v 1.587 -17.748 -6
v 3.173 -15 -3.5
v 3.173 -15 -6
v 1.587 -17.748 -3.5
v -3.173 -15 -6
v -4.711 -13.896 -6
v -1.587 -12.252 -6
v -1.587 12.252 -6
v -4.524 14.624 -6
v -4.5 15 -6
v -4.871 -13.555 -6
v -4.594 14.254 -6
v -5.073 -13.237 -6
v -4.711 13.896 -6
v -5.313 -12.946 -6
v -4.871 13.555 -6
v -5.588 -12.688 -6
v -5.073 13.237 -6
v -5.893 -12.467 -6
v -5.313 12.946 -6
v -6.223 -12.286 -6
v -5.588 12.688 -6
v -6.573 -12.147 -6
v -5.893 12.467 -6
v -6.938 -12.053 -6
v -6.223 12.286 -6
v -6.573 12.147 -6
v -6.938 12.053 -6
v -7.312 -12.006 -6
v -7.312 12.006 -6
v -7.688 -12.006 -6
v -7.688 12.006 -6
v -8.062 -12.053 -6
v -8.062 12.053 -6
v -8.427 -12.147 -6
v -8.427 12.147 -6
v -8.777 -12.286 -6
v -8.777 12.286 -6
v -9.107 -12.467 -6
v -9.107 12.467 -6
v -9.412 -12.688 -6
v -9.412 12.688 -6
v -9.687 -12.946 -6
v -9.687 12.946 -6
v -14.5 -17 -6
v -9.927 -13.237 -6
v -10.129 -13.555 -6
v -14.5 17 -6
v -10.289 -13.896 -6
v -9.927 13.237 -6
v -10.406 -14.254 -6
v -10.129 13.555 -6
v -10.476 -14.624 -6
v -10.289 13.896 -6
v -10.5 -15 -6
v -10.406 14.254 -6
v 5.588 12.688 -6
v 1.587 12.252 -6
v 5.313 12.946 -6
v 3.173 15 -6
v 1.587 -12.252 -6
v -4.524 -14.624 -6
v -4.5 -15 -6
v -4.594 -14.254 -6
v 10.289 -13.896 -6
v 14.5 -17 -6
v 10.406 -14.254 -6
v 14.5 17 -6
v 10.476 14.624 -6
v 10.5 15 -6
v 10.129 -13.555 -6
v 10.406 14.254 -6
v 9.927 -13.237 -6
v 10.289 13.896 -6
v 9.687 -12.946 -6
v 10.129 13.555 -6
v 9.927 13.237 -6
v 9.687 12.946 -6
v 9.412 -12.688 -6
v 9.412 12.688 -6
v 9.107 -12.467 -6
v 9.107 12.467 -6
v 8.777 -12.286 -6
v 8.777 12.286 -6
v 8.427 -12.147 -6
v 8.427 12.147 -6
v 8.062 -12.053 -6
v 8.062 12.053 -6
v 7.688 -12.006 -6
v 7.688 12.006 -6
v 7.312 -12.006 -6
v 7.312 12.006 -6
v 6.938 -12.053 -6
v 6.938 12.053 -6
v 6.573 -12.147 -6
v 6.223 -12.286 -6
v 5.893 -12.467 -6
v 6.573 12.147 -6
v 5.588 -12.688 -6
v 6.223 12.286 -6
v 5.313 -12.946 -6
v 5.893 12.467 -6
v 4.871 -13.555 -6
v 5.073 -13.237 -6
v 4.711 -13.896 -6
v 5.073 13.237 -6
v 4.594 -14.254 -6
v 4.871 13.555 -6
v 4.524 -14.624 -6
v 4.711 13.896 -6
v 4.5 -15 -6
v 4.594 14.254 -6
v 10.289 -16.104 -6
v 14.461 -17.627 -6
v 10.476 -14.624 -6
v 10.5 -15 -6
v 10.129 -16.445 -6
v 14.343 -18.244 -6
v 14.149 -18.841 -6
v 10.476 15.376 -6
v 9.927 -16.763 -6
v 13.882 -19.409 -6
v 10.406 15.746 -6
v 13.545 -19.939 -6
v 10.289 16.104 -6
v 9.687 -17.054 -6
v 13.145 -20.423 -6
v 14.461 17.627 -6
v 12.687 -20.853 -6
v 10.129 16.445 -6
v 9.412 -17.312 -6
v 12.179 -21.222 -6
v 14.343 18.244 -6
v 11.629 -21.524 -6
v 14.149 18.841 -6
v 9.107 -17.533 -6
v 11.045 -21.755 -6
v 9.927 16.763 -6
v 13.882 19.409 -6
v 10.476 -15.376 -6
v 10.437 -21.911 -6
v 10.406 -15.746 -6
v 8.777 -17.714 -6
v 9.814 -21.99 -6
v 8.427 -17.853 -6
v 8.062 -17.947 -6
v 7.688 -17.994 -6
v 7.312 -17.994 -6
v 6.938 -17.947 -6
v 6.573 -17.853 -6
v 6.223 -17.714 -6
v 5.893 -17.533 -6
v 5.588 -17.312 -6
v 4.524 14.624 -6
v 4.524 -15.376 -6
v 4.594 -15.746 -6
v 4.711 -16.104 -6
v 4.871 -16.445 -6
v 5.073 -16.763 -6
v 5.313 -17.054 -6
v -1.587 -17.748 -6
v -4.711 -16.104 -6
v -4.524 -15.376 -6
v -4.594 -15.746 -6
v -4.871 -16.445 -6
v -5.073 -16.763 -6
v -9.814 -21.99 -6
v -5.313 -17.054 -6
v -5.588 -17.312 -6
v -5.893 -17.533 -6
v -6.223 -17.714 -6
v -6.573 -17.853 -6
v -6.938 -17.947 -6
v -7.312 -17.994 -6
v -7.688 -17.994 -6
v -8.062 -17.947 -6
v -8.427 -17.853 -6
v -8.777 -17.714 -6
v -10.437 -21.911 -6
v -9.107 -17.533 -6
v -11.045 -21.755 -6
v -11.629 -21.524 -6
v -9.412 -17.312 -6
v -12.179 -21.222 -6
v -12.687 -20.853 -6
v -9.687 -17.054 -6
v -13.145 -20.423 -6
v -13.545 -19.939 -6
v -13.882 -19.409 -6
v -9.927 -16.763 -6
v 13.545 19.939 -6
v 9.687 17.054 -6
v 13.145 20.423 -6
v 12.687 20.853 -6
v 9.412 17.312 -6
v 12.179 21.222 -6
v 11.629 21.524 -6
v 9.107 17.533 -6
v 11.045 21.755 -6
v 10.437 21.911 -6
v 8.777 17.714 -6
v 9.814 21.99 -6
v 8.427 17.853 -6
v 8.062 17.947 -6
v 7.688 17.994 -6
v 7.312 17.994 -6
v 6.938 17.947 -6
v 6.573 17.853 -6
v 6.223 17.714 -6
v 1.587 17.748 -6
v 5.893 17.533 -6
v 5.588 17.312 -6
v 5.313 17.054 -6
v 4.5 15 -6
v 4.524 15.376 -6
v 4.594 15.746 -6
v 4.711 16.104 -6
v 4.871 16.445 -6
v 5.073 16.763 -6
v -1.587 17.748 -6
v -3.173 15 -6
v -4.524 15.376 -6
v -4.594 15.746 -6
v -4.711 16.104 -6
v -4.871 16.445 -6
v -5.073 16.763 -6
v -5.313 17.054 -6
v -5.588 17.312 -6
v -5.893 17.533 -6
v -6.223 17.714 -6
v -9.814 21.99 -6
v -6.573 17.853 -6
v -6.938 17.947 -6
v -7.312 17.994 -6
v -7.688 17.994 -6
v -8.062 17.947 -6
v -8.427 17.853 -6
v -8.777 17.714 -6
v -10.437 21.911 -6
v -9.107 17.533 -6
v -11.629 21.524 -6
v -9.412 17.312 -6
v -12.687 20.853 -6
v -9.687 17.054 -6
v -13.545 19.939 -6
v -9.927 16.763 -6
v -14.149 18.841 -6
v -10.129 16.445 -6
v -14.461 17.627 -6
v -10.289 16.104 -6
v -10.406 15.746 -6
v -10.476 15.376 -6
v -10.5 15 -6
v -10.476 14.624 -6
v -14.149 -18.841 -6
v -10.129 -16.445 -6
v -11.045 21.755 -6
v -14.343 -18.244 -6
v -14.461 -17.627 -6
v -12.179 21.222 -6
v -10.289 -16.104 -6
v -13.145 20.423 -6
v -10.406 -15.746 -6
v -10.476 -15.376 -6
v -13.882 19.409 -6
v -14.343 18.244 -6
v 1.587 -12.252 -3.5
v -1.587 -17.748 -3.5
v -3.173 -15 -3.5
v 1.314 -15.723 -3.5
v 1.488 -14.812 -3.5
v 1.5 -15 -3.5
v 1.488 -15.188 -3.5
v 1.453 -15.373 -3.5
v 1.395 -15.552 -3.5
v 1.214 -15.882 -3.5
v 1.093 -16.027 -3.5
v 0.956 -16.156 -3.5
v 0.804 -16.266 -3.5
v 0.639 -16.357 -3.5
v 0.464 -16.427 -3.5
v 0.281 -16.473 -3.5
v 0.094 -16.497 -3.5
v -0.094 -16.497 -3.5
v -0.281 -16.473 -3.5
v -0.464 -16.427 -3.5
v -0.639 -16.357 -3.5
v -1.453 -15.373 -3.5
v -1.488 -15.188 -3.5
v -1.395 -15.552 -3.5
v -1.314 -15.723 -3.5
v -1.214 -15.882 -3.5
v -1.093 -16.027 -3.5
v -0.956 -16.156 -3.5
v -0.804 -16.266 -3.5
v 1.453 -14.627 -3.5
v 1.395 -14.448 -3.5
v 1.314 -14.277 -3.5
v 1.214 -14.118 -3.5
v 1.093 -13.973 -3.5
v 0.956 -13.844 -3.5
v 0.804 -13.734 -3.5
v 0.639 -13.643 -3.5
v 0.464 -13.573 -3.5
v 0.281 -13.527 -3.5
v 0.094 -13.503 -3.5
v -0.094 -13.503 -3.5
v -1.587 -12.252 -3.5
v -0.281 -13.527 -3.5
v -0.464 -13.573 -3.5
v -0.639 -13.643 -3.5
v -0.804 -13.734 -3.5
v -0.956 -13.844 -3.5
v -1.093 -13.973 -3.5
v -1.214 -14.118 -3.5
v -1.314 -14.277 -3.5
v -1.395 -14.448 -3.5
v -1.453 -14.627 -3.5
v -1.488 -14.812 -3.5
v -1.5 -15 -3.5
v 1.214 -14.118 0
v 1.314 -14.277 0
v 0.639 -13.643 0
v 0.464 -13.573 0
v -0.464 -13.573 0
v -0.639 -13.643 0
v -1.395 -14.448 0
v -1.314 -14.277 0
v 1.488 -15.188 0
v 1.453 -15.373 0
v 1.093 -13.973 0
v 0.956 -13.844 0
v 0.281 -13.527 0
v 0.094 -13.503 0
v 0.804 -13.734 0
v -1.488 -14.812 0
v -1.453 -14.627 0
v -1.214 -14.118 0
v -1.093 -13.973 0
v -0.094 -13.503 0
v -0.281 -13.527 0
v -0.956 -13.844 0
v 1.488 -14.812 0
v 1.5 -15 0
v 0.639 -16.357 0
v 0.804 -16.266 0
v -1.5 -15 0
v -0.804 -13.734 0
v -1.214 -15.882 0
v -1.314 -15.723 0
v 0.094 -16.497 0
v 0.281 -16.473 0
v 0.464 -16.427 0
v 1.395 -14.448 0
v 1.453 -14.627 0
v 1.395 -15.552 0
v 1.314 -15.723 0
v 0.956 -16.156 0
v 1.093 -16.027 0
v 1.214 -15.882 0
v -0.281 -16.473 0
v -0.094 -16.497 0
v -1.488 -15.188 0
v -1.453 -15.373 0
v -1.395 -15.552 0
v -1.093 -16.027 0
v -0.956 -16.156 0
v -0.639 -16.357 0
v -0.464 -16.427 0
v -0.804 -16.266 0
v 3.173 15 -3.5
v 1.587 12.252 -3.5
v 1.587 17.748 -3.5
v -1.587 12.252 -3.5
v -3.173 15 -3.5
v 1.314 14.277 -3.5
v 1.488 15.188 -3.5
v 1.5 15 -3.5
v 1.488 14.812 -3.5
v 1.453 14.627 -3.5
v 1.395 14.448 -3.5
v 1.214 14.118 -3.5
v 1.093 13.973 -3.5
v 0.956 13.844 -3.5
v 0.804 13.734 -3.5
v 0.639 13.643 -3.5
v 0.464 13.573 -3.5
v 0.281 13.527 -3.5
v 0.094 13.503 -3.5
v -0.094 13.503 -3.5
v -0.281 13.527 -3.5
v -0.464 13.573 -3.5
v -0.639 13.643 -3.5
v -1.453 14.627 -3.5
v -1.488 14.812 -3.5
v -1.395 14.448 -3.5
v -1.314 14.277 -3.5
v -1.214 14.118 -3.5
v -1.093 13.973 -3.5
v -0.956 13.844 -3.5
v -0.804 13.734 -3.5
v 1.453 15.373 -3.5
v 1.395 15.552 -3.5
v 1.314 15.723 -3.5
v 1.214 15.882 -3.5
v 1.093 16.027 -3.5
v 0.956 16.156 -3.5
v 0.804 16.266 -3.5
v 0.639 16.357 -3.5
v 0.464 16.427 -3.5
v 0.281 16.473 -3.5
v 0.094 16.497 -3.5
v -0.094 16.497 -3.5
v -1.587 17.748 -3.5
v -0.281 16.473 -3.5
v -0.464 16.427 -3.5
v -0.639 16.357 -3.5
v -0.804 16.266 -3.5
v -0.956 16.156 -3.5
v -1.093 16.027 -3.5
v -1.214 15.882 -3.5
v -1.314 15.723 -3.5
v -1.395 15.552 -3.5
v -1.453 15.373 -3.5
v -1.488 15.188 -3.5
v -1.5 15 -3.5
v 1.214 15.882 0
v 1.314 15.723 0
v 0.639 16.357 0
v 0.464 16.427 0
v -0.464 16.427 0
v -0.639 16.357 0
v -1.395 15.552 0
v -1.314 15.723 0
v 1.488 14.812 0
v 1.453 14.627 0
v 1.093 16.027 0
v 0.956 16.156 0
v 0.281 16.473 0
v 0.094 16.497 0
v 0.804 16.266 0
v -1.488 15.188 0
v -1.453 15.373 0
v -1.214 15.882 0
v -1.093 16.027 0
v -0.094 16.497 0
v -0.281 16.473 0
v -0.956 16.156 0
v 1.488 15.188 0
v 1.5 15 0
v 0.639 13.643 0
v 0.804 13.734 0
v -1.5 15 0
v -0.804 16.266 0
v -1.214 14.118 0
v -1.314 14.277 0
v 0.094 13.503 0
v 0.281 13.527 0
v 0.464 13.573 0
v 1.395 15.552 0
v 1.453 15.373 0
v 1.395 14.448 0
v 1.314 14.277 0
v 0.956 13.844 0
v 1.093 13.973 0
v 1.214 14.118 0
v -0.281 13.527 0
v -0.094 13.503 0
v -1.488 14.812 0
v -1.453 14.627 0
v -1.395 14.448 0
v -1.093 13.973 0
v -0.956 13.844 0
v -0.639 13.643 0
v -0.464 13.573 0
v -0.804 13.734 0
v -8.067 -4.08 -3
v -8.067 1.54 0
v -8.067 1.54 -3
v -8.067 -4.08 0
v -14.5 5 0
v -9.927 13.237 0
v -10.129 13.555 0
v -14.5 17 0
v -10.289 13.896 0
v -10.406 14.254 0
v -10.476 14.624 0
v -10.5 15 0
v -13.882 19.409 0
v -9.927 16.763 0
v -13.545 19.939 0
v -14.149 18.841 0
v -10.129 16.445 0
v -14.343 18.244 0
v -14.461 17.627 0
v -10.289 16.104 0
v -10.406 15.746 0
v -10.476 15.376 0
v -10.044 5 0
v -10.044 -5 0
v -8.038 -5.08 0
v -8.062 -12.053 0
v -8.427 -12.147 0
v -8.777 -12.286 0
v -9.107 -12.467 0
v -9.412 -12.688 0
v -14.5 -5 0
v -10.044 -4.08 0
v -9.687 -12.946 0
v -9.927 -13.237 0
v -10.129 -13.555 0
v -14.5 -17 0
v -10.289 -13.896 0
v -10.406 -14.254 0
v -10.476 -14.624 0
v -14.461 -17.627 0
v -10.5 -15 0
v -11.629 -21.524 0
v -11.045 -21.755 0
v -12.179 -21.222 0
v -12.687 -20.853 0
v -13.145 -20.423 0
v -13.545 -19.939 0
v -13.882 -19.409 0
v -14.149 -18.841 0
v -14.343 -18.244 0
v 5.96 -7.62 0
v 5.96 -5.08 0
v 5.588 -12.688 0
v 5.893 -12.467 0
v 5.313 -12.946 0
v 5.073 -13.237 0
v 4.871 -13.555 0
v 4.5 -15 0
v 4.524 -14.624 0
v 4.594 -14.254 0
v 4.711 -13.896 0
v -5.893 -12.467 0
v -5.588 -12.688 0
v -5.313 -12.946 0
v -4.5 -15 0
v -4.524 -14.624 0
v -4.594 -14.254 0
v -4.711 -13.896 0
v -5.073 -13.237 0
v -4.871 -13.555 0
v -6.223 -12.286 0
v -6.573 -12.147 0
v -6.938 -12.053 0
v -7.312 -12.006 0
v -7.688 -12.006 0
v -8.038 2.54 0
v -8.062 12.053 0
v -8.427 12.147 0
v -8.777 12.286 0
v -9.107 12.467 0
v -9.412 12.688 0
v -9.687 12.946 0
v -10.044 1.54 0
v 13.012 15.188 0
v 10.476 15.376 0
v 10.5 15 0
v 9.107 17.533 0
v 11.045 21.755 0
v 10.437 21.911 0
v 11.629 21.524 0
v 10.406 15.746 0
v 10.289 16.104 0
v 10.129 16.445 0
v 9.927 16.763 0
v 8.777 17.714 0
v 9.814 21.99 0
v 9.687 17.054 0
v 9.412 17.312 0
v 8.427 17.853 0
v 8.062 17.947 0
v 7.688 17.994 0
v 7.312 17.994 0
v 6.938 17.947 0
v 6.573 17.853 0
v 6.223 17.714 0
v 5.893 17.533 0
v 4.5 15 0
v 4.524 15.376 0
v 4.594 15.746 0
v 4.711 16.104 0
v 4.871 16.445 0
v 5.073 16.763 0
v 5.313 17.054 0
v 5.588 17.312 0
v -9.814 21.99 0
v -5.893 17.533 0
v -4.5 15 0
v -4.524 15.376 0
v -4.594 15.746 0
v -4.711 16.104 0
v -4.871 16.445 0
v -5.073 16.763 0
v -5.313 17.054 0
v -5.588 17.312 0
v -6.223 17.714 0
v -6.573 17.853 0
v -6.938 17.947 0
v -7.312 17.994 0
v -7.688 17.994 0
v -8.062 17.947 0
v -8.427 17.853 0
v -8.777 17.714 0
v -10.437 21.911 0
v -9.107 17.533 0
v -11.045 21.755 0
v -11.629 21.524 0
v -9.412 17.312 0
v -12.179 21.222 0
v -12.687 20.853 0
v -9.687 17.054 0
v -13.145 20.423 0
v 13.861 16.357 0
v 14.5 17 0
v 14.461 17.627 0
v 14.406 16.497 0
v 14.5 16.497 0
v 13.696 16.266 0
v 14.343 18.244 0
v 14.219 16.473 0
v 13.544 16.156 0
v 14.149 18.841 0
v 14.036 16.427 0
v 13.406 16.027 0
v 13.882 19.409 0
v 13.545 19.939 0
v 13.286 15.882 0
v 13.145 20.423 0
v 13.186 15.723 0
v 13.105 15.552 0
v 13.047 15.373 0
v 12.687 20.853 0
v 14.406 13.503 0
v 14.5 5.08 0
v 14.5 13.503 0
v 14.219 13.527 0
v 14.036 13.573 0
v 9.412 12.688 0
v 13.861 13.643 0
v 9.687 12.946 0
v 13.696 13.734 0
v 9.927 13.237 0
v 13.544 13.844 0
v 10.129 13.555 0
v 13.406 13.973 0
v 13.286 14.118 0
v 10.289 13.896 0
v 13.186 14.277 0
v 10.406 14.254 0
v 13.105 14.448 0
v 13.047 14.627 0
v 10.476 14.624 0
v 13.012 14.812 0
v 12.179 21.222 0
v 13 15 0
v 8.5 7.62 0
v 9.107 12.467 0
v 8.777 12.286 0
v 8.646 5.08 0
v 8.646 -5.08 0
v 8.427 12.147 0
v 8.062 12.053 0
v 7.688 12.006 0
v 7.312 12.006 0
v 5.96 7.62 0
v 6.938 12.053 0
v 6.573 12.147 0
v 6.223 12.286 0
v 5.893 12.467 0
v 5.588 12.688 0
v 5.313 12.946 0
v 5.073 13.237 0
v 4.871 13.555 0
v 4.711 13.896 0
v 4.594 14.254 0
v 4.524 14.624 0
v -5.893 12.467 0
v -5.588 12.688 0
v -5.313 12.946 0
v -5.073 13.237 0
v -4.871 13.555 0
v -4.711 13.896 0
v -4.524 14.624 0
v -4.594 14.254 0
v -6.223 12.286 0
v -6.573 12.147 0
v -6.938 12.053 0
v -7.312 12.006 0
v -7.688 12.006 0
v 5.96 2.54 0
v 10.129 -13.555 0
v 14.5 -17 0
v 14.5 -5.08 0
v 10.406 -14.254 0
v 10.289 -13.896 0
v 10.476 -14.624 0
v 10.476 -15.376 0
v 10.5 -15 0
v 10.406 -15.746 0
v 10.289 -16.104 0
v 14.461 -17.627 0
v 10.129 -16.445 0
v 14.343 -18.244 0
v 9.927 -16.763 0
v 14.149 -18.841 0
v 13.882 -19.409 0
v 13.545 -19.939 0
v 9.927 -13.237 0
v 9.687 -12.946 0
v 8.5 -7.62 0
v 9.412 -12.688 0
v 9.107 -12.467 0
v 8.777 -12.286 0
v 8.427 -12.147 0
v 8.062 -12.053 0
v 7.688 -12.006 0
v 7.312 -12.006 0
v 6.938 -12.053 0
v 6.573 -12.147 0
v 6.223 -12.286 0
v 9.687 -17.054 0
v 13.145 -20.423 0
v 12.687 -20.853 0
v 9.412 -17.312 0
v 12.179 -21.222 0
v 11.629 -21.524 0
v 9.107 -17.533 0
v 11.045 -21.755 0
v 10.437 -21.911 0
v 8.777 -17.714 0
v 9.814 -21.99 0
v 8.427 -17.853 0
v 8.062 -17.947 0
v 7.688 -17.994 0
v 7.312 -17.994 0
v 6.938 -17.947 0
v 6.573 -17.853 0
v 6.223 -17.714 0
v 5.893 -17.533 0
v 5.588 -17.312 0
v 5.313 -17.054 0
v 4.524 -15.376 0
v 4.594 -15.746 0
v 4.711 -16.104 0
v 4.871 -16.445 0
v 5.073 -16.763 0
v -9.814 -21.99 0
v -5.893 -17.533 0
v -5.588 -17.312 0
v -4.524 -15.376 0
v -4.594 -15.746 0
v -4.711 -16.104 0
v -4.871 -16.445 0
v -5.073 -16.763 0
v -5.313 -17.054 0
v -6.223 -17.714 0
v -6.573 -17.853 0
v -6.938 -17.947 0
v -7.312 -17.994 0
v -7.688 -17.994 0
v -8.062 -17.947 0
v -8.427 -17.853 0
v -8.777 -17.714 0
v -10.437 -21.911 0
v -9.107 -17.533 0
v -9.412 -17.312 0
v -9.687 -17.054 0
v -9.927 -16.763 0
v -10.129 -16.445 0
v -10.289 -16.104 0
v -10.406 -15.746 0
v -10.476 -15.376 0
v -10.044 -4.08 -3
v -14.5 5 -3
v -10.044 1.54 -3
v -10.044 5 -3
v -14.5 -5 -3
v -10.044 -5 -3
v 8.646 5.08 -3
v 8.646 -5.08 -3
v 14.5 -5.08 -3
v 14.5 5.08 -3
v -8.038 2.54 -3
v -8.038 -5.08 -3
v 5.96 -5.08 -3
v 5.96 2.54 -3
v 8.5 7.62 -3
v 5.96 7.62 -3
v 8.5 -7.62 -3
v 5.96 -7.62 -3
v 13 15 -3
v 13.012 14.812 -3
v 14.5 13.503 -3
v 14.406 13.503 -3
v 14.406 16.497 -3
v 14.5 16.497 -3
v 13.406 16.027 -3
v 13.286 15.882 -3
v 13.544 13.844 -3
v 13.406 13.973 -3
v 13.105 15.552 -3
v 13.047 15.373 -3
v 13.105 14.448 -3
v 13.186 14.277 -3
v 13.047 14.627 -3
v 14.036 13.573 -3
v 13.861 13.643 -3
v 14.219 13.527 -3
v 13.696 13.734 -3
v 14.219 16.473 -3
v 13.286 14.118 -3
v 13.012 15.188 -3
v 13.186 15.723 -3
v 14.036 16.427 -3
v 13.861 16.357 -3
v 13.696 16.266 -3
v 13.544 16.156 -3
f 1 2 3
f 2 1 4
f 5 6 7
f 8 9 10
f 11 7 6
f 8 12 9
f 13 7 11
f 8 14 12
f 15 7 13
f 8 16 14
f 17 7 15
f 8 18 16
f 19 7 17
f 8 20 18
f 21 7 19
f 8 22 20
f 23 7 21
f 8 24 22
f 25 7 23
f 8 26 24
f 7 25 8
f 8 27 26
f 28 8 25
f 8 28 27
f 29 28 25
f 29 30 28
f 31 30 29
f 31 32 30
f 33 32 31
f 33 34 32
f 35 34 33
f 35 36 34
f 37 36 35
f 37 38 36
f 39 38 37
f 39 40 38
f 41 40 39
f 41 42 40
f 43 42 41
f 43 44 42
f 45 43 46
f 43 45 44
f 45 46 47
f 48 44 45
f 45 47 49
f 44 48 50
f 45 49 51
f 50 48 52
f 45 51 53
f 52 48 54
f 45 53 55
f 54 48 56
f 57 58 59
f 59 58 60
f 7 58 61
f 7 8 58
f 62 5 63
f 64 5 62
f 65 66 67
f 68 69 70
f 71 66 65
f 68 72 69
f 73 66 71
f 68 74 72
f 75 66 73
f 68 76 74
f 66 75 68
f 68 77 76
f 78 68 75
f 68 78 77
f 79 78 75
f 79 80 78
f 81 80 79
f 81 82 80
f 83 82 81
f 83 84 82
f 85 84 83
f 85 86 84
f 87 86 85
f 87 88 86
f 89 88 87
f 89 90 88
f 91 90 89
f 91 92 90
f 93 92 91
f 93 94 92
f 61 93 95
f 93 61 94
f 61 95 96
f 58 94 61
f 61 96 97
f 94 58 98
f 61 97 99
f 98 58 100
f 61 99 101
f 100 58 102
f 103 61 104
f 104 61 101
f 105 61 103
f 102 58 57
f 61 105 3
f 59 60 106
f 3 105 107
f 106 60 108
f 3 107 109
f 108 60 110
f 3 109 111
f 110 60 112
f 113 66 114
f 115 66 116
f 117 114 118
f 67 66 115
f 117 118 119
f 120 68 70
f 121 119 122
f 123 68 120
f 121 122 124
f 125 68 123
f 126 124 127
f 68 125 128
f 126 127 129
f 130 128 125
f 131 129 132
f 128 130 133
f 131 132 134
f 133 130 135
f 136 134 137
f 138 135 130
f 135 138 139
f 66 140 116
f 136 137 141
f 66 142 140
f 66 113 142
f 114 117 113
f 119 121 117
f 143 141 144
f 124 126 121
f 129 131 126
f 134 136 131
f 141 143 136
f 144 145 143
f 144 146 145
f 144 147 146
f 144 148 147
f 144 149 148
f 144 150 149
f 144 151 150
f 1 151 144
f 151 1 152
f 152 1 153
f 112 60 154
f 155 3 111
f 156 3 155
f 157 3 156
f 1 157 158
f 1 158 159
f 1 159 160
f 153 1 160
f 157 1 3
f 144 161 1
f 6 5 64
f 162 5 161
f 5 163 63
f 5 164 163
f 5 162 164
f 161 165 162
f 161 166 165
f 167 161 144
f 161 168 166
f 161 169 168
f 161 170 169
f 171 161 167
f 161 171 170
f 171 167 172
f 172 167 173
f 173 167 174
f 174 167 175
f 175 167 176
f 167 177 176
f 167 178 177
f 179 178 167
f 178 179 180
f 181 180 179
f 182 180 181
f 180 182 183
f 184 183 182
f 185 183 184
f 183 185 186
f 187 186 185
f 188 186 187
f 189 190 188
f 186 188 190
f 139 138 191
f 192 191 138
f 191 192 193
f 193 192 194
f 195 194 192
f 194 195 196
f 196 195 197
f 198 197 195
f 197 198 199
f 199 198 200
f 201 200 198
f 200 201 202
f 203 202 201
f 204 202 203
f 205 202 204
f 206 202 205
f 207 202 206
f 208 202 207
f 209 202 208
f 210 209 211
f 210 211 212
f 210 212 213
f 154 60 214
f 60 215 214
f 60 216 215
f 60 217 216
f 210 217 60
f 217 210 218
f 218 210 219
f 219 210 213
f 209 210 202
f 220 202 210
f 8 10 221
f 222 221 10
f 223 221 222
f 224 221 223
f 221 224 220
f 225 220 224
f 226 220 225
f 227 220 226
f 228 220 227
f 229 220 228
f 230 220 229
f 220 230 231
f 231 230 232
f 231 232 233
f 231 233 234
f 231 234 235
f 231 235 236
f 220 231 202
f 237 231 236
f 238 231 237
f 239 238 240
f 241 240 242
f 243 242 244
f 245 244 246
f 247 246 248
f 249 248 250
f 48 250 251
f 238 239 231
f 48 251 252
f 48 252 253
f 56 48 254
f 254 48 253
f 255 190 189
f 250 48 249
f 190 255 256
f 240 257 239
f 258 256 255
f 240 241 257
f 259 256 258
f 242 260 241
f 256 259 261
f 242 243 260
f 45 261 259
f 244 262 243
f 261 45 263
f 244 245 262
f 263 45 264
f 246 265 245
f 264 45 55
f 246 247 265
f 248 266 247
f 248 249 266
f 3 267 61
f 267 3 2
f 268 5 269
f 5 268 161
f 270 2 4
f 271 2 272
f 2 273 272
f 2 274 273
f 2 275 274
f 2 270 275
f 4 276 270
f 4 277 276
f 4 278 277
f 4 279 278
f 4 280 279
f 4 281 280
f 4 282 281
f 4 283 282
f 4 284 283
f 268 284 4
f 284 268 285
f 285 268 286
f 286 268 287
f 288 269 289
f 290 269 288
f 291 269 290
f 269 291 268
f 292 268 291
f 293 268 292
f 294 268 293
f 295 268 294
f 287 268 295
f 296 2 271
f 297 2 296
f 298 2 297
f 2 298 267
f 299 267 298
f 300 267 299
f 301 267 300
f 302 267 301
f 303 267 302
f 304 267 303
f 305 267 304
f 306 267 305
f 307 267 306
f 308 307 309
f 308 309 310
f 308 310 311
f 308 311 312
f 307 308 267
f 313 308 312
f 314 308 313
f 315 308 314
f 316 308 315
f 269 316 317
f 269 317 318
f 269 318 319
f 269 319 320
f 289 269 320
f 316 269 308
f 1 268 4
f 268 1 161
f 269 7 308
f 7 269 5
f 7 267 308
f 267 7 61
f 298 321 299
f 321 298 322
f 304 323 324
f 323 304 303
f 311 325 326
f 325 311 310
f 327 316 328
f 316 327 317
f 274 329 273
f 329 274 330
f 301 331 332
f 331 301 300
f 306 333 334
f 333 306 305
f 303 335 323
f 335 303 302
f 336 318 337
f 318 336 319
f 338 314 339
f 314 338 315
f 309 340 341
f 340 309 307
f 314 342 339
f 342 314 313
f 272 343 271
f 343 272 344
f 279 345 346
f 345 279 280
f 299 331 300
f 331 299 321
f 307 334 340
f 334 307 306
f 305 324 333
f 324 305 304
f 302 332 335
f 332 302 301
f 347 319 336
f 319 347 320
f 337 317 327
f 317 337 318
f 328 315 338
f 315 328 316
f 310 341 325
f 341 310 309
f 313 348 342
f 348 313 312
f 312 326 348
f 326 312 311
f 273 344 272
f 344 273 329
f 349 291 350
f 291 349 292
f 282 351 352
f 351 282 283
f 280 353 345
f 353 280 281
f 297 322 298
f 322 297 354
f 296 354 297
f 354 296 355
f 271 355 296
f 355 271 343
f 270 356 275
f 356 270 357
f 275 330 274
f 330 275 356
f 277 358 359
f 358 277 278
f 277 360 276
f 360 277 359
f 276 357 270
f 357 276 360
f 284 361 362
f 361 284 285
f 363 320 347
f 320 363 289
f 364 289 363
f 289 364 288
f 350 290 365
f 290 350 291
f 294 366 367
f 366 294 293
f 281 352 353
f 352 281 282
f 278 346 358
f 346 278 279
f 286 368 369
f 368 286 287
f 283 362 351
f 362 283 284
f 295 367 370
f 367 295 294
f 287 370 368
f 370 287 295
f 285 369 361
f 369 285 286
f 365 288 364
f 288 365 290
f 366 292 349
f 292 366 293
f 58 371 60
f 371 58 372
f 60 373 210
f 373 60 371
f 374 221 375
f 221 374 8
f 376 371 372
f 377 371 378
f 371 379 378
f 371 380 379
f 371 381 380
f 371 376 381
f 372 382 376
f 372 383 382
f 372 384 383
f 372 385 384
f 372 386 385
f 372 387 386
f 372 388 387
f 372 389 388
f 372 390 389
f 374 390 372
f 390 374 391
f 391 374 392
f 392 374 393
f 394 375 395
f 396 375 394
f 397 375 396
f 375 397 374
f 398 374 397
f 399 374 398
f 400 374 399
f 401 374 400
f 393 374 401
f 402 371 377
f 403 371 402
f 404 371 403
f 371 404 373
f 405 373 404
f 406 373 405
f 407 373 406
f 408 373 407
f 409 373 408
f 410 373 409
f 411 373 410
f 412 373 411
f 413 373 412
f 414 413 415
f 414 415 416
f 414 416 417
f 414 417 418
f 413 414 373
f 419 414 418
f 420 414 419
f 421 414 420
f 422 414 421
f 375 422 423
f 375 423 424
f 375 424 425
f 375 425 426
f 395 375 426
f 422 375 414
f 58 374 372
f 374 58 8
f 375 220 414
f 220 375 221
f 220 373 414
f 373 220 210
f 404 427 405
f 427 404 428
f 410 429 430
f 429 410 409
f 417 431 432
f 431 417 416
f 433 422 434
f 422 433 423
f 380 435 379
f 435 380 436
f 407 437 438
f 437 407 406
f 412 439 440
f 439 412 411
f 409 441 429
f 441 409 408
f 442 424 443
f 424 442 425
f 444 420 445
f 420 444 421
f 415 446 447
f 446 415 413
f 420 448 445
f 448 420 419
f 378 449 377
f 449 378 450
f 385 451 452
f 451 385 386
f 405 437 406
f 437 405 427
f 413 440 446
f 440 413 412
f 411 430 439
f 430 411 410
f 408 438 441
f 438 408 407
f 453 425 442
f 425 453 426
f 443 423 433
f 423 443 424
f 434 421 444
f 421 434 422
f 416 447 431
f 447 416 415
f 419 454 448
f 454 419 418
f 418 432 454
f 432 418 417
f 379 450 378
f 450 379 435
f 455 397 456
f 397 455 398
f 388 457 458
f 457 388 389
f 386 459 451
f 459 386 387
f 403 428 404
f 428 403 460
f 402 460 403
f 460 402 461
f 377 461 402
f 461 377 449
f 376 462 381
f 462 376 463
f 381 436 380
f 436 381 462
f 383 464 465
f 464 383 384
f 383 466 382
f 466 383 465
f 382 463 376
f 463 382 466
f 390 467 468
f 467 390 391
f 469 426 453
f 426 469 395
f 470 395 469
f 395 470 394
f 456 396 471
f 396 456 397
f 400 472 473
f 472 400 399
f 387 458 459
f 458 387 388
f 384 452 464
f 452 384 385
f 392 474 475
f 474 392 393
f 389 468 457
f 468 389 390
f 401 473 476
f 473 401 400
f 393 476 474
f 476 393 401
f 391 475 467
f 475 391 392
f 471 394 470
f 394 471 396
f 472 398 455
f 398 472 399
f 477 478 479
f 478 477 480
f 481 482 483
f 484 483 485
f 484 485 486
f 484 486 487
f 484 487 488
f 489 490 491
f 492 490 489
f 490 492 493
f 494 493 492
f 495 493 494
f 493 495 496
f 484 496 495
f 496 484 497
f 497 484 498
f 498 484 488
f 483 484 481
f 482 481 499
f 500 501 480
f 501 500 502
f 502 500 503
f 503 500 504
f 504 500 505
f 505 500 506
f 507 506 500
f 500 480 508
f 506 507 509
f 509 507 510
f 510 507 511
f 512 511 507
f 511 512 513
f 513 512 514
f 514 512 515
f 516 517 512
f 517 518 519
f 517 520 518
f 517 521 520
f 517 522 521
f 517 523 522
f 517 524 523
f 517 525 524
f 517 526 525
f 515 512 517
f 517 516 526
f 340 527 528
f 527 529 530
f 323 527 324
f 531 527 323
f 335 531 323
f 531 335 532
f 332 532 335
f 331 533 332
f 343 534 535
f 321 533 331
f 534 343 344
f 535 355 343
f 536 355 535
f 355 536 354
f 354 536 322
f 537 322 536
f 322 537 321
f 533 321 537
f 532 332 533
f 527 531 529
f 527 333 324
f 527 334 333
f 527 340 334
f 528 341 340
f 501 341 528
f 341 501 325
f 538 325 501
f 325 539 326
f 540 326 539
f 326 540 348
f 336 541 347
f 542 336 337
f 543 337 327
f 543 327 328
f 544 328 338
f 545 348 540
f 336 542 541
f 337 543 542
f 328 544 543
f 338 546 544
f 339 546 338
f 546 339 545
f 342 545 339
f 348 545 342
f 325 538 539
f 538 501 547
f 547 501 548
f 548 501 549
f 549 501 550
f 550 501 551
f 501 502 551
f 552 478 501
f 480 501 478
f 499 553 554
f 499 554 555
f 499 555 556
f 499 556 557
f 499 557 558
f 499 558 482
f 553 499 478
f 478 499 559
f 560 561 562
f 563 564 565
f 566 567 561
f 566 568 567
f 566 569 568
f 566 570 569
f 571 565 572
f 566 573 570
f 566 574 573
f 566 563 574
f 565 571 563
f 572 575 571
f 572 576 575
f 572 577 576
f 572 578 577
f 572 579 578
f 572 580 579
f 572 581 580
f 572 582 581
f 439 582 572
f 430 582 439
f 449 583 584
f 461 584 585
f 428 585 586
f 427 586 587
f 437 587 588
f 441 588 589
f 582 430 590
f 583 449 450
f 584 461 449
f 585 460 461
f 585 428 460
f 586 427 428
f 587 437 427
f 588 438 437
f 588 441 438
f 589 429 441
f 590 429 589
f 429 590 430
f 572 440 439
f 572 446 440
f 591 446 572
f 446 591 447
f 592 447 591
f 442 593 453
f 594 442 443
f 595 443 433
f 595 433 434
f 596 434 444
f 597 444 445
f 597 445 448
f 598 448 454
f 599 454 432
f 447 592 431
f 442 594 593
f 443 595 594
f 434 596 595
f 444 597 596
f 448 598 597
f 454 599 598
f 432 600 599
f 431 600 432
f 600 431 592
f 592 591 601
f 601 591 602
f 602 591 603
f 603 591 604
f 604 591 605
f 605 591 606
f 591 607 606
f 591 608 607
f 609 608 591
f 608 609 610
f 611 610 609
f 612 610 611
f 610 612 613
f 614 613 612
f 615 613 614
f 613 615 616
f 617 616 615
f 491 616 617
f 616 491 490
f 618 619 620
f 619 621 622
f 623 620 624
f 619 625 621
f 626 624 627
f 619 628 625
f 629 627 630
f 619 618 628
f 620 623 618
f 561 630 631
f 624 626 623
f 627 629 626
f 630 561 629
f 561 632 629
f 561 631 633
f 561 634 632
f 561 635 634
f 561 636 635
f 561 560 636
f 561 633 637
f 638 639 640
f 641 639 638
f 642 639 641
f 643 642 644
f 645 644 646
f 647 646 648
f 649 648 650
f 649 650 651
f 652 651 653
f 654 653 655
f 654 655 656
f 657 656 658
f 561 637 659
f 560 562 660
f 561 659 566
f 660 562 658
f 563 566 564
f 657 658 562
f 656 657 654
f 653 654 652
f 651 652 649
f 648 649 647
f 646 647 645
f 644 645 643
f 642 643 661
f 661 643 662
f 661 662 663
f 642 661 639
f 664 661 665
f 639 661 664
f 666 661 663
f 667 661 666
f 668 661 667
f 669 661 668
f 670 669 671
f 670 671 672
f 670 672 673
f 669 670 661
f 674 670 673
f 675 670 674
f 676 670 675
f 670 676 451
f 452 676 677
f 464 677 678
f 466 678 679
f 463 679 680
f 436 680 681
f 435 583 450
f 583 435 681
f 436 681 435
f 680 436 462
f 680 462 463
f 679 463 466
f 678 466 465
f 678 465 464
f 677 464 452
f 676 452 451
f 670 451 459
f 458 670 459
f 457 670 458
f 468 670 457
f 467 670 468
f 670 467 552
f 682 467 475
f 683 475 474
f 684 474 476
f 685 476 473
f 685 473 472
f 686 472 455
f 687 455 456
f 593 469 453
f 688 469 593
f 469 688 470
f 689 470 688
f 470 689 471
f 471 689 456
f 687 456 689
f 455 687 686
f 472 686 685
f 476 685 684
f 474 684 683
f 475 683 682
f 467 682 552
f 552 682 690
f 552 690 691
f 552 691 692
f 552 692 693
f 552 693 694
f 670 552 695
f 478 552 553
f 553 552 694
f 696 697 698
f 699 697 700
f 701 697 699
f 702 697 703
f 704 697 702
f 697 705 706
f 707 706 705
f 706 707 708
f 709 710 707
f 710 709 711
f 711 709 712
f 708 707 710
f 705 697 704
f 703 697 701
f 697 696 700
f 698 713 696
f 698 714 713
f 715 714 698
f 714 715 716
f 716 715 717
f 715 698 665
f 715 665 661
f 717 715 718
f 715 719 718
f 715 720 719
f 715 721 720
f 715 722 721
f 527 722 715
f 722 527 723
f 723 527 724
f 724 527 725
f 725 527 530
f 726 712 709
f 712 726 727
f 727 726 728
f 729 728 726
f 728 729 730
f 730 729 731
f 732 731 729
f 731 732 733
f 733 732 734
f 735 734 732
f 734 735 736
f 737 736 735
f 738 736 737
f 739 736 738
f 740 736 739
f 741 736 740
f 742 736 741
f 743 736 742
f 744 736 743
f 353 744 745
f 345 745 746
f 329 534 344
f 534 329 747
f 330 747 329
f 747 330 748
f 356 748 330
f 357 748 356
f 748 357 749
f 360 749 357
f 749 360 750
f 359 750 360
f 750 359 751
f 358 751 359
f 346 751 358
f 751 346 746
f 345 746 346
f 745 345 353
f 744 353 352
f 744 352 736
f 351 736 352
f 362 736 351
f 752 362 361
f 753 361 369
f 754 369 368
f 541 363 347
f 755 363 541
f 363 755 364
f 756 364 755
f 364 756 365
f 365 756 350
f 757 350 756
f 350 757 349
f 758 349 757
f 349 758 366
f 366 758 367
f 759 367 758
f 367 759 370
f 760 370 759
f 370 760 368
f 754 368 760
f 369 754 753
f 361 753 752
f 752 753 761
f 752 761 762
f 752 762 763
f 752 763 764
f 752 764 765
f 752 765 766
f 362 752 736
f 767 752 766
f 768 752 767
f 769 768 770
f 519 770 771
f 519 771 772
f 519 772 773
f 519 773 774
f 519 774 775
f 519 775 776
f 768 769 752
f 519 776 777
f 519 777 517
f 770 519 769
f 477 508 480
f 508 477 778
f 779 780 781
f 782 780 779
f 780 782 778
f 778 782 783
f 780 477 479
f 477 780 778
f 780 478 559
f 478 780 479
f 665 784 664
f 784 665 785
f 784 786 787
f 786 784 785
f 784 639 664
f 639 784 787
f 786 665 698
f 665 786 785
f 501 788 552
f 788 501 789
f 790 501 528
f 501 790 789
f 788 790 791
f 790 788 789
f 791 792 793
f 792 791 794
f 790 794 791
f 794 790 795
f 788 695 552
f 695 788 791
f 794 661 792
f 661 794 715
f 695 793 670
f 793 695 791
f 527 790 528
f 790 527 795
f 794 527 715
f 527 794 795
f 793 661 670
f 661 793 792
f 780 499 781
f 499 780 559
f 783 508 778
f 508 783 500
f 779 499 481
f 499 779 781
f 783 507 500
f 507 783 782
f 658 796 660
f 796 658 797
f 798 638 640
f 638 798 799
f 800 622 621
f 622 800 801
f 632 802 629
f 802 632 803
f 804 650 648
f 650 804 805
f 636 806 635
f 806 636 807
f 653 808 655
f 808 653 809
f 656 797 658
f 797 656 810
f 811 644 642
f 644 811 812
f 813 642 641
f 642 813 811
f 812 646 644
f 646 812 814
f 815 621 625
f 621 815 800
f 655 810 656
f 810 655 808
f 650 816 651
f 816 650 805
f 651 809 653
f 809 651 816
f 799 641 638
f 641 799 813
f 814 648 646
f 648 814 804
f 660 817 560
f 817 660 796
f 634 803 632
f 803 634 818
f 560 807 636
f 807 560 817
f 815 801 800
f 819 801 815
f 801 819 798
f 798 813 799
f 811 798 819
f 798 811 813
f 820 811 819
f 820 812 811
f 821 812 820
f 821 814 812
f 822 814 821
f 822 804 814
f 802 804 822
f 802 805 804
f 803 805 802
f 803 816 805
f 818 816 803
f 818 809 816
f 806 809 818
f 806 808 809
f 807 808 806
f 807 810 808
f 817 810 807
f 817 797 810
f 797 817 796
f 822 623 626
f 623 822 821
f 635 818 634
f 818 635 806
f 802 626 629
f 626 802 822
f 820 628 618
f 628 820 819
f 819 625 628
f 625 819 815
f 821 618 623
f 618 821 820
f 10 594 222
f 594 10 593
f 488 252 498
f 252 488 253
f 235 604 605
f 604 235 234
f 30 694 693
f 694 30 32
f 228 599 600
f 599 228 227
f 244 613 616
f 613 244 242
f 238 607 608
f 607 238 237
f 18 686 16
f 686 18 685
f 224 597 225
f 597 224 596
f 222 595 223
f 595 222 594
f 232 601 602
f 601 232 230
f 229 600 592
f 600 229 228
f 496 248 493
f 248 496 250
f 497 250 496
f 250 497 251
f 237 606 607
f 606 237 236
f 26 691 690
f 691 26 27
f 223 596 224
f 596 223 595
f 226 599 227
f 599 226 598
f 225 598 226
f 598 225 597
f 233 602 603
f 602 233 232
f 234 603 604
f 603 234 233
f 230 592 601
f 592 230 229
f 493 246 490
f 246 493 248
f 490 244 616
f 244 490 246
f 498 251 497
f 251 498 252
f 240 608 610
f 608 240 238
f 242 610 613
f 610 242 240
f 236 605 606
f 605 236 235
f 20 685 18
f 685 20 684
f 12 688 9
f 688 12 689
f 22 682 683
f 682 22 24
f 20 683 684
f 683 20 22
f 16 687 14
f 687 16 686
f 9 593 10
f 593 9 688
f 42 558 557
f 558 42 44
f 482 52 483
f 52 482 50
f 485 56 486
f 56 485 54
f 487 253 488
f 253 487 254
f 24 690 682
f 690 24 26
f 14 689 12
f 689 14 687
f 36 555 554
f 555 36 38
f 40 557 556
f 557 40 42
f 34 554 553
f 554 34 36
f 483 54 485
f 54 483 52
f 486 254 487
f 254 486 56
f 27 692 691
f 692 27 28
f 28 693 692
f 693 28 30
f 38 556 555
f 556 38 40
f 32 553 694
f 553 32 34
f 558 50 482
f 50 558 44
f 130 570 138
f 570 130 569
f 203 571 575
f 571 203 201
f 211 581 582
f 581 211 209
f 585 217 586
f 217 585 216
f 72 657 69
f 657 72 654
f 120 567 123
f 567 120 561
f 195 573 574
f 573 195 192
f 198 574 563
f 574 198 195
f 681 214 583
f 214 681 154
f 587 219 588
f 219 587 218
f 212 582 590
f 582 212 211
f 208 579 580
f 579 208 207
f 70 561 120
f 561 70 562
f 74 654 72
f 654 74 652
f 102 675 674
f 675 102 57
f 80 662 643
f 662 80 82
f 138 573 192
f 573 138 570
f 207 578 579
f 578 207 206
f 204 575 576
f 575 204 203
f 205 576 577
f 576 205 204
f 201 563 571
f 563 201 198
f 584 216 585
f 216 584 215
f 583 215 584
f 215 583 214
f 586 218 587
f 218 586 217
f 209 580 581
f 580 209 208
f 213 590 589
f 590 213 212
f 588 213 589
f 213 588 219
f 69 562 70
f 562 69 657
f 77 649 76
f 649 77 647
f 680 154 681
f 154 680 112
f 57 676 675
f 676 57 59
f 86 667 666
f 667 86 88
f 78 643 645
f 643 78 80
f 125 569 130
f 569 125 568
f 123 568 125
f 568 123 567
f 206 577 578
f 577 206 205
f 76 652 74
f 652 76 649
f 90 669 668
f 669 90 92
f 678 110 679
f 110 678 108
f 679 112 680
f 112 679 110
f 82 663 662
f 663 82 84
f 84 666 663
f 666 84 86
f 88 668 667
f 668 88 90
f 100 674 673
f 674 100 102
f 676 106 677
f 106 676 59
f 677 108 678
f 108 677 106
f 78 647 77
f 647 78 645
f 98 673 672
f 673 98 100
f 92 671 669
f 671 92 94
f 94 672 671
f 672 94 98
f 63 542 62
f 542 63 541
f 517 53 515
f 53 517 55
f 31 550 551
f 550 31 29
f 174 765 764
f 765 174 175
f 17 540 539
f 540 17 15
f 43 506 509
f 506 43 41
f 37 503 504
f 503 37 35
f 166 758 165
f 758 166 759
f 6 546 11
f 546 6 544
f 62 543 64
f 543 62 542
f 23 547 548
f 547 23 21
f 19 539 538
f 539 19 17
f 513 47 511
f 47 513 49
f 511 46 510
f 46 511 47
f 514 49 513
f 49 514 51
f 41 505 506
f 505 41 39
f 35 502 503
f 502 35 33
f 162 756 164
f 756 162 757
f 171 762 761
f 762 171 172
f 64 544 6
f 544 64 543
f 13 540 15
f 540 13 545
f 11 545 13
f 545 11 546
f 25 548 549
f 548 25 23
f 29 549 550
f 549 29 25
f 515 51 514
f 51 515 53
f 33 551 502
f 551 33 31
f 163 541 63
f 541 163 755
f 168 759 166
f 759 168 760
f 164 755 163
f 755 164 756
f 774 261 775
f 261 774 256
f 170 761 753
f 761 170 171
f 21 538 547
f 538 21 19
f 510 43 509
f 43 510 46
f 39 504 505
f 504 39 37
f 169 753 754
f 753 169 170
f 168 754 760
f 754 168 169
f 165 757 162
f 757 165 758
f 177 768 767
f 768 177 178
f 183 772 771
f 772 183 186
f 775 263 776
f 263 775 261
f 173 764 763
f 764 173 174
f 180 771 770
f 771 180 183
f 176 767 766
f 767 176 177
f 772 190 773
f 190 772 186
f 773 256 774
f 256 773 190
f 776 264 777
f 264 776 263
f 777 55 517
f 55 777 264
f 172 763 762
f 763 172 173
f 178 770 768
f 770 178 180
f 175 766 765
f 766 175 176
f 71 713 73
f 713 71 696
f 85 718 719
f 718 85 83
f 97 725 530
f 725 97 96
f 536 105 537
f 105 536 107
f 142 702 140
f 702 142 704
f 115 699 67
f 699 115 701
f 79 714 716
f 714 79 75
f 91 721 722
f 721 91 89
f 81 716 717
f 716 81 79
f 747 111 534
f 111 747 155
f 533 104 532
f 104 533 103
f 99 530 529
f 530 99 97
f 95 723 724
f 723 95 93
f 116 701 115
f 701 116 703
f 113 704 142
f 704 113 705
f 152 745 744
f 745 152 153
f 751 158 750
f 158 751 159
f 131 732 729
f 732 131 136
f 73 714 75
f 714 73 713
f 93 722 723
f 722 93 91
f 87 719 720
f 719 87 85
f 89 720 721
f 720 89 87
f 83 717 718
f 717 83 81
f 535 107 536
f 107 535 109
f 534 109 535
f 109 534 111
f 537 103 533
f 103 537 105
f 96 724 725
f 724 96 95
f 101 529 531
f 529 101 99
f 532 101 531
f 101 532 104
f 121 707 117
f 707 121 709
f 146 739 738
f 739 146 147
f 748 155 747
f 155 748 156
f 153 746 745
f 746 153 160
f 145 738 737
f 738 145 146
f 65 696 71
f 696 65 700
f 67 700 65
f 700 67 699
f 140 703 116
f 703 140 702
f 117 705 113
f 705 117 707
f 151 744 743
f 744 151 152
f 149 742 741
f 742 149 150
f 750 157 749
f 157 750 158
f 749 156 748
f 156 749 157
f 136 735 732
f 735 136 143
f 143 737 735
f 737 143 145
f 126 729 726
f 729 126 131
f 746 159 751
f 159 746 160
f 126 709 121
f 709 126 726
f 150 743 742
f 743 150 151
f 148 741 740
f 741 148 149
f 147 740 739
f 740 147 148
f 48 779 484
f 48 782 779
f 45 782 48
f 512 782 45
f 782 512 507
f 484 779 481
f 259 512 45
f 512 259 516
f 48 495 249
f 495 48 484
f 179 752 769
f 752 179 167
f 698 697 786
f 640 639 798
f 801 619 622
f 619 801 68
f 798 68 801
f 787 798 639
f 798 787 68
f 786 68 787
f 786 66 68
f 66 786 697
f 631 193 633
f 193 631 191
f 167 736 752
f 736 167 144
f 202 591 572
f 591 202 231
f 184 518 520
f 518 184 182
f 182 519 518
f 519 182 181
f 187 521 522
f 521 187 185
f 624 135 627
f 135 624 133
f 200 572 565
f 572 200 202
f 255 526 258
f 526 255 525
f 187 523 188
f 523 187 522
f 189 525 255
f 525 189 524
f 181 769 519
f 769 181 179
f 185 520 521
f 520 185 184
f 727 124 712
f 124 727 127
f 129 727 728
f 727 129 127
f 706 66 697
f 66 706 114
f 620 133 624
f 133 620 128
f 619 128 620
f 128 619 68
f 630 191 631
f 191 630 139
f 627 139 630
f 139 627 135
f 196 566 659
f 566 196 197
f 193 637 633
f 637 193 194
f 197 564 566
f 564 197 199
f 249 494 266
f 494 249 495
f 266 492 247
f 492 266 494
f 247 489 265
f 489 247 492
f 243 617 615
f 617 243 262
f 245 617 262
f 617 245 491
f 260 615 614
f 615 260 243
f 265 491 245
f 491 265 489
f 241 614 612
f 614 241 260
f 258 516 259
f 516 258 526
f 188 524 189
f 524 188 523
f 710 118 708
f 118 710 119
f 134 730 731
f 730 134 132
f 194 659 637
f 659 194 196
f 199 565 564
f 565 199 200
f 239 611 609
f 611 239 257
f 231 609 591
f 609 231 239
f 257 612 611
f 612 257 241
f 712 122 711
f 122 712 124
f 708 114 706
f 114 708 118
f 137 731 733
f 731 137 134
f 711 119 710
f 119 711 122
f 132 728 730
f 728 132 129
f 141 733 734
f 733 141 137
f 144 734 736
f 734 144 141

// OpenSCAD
$fn = 50;


difference() {
	union() {
		translate(v = [0, 0, -6]) {
			hull() {
				translate(v = [-9.5000000000, 17.0000000000, 0]) {
					cylinder(h = 6, r = 5);
				}
				translate(v = [9.5000000000, 17.0000000000, 0]) {
					cylinder(h = 6, r = 5);
				}
				translate(v = [-9.5000000000, -17.0000000000, 0]) {
					cylinder(h = 6, r = 5);
				}
				translate(v = [9.5000000000, -17.0000000000, 0]) {
					cylinder(h = 6, r = 5);
				}
			}
		}
	}
	union() {
		translate(v = [0, -15, -6]) {
			rotate(a = [0, 0, 0]) {
				difference() {
					union() {
						linear_extrude(height = 2.5000000000) {
							polygon(points = [[3.1735000000, 0.0000000000], [1.5867500000, 2.7483316189], [-1.5867500000, 2.7483316189], [-3.1735000000, 0.0000000000], [-1.5867500000, -2.7483316189], [1.5867500000, -2.7483316189]]);
						}
						translate(v = [0, 0, -50.0000000000]) {
							cylinder(h = 100, r = 1.5000000000);
						}
						translate(v = [0, 0, -50.0000000000]) {
							cylinder(h = 100, r = 1.5000000000);
						}
						translate(v = [0, 0, -50.0000000000]) {
							cylinder(h = 100, r = 1.5000000000);
						}
					}
					union();
				}
			}
		}
		translate(v = [0, 15, -6]) {
			rotate(a = [0, 0, 0]) {
				difference() {
					union() {
						linear_extrude(height = 2.5000000000) {
							polygon(points = [[3.1735000000, 0.0000000000], [1.5867500000, 2.7483316189], [-1.5867500000, 2.7483316189], [-3.1735000000, 0.0000000000], [-1.5867500000, -2.7483316189], [1.5867500000, -2.7483316189]]);
						}
						translate(v = [0, 0, -50.0000000000]) {
							cylinder(h = 100, r = 1.5000000000);
						}
						translate(v = [0, 0, -50.0000000000]) {
							cylinder(h = 100, r = 1.5000000000);
						}
						translate(v = [0, 0, -50.0000000000]) {
							cylinder(h = 100, r = 1.5000000000);
						}
					}
					union();
				}
			}
		}
		translate(v = [15.0000000000, 0, -3]) {
			rotate(a = [0, 0, 180]) {
				difference() {
					union() {
						#translate(v = [23.0670000000, -1.5400000000, 0]) {
							cube(size = [5, 5.6200000000, 3]);
						}
						#translate(v = [0.3540000000, -5.0800000000, 0]) {
							cube(size = [6, 10.1600000000, 3]);
						}
						#translate(v = [9.0380000000, -2.5400000000, 0]) {
							cube(size = [14, 7.6200000000, 3]);
						}
						#translate(v = [6.5000000000, -7.6200000000, 0]) {
							cube(size = [2.5400000000, 15.2400000000, 3]);
						}
						#translate(v = [25.0440000000, -5.0000000000, 0]) {
							cube(size = [7, 10, 3]);
						}
						#translate(v = [0.5000000000, -15, 0.0000000000]) {
							cylinder(h = 3, r = 1.5000000000);
						}
					}
					union();
				}
			}
		}
		translate(v = [-7.5000000000, 15.0000000000, -50.0000000000]) {
			cylinder(h = 100, r = 3.0000000000);
		}
		translate(v = [7.5000000000, 15.0000000000, -50.0000000000]) {
			cylinder(h = 100, r = 3.0000000000);
		}
		translate(v = [-7.5000000000, -15.0000000000, -50.0000000000]) {
			cylinder(h = 100, r = 3.0000000000);
		}
		translate(v = [7.5000000000, -15.0000000000, -50.0000000000]) {
			cylinder(h = 100, r = 3.0000000000);
		}
	}
}
